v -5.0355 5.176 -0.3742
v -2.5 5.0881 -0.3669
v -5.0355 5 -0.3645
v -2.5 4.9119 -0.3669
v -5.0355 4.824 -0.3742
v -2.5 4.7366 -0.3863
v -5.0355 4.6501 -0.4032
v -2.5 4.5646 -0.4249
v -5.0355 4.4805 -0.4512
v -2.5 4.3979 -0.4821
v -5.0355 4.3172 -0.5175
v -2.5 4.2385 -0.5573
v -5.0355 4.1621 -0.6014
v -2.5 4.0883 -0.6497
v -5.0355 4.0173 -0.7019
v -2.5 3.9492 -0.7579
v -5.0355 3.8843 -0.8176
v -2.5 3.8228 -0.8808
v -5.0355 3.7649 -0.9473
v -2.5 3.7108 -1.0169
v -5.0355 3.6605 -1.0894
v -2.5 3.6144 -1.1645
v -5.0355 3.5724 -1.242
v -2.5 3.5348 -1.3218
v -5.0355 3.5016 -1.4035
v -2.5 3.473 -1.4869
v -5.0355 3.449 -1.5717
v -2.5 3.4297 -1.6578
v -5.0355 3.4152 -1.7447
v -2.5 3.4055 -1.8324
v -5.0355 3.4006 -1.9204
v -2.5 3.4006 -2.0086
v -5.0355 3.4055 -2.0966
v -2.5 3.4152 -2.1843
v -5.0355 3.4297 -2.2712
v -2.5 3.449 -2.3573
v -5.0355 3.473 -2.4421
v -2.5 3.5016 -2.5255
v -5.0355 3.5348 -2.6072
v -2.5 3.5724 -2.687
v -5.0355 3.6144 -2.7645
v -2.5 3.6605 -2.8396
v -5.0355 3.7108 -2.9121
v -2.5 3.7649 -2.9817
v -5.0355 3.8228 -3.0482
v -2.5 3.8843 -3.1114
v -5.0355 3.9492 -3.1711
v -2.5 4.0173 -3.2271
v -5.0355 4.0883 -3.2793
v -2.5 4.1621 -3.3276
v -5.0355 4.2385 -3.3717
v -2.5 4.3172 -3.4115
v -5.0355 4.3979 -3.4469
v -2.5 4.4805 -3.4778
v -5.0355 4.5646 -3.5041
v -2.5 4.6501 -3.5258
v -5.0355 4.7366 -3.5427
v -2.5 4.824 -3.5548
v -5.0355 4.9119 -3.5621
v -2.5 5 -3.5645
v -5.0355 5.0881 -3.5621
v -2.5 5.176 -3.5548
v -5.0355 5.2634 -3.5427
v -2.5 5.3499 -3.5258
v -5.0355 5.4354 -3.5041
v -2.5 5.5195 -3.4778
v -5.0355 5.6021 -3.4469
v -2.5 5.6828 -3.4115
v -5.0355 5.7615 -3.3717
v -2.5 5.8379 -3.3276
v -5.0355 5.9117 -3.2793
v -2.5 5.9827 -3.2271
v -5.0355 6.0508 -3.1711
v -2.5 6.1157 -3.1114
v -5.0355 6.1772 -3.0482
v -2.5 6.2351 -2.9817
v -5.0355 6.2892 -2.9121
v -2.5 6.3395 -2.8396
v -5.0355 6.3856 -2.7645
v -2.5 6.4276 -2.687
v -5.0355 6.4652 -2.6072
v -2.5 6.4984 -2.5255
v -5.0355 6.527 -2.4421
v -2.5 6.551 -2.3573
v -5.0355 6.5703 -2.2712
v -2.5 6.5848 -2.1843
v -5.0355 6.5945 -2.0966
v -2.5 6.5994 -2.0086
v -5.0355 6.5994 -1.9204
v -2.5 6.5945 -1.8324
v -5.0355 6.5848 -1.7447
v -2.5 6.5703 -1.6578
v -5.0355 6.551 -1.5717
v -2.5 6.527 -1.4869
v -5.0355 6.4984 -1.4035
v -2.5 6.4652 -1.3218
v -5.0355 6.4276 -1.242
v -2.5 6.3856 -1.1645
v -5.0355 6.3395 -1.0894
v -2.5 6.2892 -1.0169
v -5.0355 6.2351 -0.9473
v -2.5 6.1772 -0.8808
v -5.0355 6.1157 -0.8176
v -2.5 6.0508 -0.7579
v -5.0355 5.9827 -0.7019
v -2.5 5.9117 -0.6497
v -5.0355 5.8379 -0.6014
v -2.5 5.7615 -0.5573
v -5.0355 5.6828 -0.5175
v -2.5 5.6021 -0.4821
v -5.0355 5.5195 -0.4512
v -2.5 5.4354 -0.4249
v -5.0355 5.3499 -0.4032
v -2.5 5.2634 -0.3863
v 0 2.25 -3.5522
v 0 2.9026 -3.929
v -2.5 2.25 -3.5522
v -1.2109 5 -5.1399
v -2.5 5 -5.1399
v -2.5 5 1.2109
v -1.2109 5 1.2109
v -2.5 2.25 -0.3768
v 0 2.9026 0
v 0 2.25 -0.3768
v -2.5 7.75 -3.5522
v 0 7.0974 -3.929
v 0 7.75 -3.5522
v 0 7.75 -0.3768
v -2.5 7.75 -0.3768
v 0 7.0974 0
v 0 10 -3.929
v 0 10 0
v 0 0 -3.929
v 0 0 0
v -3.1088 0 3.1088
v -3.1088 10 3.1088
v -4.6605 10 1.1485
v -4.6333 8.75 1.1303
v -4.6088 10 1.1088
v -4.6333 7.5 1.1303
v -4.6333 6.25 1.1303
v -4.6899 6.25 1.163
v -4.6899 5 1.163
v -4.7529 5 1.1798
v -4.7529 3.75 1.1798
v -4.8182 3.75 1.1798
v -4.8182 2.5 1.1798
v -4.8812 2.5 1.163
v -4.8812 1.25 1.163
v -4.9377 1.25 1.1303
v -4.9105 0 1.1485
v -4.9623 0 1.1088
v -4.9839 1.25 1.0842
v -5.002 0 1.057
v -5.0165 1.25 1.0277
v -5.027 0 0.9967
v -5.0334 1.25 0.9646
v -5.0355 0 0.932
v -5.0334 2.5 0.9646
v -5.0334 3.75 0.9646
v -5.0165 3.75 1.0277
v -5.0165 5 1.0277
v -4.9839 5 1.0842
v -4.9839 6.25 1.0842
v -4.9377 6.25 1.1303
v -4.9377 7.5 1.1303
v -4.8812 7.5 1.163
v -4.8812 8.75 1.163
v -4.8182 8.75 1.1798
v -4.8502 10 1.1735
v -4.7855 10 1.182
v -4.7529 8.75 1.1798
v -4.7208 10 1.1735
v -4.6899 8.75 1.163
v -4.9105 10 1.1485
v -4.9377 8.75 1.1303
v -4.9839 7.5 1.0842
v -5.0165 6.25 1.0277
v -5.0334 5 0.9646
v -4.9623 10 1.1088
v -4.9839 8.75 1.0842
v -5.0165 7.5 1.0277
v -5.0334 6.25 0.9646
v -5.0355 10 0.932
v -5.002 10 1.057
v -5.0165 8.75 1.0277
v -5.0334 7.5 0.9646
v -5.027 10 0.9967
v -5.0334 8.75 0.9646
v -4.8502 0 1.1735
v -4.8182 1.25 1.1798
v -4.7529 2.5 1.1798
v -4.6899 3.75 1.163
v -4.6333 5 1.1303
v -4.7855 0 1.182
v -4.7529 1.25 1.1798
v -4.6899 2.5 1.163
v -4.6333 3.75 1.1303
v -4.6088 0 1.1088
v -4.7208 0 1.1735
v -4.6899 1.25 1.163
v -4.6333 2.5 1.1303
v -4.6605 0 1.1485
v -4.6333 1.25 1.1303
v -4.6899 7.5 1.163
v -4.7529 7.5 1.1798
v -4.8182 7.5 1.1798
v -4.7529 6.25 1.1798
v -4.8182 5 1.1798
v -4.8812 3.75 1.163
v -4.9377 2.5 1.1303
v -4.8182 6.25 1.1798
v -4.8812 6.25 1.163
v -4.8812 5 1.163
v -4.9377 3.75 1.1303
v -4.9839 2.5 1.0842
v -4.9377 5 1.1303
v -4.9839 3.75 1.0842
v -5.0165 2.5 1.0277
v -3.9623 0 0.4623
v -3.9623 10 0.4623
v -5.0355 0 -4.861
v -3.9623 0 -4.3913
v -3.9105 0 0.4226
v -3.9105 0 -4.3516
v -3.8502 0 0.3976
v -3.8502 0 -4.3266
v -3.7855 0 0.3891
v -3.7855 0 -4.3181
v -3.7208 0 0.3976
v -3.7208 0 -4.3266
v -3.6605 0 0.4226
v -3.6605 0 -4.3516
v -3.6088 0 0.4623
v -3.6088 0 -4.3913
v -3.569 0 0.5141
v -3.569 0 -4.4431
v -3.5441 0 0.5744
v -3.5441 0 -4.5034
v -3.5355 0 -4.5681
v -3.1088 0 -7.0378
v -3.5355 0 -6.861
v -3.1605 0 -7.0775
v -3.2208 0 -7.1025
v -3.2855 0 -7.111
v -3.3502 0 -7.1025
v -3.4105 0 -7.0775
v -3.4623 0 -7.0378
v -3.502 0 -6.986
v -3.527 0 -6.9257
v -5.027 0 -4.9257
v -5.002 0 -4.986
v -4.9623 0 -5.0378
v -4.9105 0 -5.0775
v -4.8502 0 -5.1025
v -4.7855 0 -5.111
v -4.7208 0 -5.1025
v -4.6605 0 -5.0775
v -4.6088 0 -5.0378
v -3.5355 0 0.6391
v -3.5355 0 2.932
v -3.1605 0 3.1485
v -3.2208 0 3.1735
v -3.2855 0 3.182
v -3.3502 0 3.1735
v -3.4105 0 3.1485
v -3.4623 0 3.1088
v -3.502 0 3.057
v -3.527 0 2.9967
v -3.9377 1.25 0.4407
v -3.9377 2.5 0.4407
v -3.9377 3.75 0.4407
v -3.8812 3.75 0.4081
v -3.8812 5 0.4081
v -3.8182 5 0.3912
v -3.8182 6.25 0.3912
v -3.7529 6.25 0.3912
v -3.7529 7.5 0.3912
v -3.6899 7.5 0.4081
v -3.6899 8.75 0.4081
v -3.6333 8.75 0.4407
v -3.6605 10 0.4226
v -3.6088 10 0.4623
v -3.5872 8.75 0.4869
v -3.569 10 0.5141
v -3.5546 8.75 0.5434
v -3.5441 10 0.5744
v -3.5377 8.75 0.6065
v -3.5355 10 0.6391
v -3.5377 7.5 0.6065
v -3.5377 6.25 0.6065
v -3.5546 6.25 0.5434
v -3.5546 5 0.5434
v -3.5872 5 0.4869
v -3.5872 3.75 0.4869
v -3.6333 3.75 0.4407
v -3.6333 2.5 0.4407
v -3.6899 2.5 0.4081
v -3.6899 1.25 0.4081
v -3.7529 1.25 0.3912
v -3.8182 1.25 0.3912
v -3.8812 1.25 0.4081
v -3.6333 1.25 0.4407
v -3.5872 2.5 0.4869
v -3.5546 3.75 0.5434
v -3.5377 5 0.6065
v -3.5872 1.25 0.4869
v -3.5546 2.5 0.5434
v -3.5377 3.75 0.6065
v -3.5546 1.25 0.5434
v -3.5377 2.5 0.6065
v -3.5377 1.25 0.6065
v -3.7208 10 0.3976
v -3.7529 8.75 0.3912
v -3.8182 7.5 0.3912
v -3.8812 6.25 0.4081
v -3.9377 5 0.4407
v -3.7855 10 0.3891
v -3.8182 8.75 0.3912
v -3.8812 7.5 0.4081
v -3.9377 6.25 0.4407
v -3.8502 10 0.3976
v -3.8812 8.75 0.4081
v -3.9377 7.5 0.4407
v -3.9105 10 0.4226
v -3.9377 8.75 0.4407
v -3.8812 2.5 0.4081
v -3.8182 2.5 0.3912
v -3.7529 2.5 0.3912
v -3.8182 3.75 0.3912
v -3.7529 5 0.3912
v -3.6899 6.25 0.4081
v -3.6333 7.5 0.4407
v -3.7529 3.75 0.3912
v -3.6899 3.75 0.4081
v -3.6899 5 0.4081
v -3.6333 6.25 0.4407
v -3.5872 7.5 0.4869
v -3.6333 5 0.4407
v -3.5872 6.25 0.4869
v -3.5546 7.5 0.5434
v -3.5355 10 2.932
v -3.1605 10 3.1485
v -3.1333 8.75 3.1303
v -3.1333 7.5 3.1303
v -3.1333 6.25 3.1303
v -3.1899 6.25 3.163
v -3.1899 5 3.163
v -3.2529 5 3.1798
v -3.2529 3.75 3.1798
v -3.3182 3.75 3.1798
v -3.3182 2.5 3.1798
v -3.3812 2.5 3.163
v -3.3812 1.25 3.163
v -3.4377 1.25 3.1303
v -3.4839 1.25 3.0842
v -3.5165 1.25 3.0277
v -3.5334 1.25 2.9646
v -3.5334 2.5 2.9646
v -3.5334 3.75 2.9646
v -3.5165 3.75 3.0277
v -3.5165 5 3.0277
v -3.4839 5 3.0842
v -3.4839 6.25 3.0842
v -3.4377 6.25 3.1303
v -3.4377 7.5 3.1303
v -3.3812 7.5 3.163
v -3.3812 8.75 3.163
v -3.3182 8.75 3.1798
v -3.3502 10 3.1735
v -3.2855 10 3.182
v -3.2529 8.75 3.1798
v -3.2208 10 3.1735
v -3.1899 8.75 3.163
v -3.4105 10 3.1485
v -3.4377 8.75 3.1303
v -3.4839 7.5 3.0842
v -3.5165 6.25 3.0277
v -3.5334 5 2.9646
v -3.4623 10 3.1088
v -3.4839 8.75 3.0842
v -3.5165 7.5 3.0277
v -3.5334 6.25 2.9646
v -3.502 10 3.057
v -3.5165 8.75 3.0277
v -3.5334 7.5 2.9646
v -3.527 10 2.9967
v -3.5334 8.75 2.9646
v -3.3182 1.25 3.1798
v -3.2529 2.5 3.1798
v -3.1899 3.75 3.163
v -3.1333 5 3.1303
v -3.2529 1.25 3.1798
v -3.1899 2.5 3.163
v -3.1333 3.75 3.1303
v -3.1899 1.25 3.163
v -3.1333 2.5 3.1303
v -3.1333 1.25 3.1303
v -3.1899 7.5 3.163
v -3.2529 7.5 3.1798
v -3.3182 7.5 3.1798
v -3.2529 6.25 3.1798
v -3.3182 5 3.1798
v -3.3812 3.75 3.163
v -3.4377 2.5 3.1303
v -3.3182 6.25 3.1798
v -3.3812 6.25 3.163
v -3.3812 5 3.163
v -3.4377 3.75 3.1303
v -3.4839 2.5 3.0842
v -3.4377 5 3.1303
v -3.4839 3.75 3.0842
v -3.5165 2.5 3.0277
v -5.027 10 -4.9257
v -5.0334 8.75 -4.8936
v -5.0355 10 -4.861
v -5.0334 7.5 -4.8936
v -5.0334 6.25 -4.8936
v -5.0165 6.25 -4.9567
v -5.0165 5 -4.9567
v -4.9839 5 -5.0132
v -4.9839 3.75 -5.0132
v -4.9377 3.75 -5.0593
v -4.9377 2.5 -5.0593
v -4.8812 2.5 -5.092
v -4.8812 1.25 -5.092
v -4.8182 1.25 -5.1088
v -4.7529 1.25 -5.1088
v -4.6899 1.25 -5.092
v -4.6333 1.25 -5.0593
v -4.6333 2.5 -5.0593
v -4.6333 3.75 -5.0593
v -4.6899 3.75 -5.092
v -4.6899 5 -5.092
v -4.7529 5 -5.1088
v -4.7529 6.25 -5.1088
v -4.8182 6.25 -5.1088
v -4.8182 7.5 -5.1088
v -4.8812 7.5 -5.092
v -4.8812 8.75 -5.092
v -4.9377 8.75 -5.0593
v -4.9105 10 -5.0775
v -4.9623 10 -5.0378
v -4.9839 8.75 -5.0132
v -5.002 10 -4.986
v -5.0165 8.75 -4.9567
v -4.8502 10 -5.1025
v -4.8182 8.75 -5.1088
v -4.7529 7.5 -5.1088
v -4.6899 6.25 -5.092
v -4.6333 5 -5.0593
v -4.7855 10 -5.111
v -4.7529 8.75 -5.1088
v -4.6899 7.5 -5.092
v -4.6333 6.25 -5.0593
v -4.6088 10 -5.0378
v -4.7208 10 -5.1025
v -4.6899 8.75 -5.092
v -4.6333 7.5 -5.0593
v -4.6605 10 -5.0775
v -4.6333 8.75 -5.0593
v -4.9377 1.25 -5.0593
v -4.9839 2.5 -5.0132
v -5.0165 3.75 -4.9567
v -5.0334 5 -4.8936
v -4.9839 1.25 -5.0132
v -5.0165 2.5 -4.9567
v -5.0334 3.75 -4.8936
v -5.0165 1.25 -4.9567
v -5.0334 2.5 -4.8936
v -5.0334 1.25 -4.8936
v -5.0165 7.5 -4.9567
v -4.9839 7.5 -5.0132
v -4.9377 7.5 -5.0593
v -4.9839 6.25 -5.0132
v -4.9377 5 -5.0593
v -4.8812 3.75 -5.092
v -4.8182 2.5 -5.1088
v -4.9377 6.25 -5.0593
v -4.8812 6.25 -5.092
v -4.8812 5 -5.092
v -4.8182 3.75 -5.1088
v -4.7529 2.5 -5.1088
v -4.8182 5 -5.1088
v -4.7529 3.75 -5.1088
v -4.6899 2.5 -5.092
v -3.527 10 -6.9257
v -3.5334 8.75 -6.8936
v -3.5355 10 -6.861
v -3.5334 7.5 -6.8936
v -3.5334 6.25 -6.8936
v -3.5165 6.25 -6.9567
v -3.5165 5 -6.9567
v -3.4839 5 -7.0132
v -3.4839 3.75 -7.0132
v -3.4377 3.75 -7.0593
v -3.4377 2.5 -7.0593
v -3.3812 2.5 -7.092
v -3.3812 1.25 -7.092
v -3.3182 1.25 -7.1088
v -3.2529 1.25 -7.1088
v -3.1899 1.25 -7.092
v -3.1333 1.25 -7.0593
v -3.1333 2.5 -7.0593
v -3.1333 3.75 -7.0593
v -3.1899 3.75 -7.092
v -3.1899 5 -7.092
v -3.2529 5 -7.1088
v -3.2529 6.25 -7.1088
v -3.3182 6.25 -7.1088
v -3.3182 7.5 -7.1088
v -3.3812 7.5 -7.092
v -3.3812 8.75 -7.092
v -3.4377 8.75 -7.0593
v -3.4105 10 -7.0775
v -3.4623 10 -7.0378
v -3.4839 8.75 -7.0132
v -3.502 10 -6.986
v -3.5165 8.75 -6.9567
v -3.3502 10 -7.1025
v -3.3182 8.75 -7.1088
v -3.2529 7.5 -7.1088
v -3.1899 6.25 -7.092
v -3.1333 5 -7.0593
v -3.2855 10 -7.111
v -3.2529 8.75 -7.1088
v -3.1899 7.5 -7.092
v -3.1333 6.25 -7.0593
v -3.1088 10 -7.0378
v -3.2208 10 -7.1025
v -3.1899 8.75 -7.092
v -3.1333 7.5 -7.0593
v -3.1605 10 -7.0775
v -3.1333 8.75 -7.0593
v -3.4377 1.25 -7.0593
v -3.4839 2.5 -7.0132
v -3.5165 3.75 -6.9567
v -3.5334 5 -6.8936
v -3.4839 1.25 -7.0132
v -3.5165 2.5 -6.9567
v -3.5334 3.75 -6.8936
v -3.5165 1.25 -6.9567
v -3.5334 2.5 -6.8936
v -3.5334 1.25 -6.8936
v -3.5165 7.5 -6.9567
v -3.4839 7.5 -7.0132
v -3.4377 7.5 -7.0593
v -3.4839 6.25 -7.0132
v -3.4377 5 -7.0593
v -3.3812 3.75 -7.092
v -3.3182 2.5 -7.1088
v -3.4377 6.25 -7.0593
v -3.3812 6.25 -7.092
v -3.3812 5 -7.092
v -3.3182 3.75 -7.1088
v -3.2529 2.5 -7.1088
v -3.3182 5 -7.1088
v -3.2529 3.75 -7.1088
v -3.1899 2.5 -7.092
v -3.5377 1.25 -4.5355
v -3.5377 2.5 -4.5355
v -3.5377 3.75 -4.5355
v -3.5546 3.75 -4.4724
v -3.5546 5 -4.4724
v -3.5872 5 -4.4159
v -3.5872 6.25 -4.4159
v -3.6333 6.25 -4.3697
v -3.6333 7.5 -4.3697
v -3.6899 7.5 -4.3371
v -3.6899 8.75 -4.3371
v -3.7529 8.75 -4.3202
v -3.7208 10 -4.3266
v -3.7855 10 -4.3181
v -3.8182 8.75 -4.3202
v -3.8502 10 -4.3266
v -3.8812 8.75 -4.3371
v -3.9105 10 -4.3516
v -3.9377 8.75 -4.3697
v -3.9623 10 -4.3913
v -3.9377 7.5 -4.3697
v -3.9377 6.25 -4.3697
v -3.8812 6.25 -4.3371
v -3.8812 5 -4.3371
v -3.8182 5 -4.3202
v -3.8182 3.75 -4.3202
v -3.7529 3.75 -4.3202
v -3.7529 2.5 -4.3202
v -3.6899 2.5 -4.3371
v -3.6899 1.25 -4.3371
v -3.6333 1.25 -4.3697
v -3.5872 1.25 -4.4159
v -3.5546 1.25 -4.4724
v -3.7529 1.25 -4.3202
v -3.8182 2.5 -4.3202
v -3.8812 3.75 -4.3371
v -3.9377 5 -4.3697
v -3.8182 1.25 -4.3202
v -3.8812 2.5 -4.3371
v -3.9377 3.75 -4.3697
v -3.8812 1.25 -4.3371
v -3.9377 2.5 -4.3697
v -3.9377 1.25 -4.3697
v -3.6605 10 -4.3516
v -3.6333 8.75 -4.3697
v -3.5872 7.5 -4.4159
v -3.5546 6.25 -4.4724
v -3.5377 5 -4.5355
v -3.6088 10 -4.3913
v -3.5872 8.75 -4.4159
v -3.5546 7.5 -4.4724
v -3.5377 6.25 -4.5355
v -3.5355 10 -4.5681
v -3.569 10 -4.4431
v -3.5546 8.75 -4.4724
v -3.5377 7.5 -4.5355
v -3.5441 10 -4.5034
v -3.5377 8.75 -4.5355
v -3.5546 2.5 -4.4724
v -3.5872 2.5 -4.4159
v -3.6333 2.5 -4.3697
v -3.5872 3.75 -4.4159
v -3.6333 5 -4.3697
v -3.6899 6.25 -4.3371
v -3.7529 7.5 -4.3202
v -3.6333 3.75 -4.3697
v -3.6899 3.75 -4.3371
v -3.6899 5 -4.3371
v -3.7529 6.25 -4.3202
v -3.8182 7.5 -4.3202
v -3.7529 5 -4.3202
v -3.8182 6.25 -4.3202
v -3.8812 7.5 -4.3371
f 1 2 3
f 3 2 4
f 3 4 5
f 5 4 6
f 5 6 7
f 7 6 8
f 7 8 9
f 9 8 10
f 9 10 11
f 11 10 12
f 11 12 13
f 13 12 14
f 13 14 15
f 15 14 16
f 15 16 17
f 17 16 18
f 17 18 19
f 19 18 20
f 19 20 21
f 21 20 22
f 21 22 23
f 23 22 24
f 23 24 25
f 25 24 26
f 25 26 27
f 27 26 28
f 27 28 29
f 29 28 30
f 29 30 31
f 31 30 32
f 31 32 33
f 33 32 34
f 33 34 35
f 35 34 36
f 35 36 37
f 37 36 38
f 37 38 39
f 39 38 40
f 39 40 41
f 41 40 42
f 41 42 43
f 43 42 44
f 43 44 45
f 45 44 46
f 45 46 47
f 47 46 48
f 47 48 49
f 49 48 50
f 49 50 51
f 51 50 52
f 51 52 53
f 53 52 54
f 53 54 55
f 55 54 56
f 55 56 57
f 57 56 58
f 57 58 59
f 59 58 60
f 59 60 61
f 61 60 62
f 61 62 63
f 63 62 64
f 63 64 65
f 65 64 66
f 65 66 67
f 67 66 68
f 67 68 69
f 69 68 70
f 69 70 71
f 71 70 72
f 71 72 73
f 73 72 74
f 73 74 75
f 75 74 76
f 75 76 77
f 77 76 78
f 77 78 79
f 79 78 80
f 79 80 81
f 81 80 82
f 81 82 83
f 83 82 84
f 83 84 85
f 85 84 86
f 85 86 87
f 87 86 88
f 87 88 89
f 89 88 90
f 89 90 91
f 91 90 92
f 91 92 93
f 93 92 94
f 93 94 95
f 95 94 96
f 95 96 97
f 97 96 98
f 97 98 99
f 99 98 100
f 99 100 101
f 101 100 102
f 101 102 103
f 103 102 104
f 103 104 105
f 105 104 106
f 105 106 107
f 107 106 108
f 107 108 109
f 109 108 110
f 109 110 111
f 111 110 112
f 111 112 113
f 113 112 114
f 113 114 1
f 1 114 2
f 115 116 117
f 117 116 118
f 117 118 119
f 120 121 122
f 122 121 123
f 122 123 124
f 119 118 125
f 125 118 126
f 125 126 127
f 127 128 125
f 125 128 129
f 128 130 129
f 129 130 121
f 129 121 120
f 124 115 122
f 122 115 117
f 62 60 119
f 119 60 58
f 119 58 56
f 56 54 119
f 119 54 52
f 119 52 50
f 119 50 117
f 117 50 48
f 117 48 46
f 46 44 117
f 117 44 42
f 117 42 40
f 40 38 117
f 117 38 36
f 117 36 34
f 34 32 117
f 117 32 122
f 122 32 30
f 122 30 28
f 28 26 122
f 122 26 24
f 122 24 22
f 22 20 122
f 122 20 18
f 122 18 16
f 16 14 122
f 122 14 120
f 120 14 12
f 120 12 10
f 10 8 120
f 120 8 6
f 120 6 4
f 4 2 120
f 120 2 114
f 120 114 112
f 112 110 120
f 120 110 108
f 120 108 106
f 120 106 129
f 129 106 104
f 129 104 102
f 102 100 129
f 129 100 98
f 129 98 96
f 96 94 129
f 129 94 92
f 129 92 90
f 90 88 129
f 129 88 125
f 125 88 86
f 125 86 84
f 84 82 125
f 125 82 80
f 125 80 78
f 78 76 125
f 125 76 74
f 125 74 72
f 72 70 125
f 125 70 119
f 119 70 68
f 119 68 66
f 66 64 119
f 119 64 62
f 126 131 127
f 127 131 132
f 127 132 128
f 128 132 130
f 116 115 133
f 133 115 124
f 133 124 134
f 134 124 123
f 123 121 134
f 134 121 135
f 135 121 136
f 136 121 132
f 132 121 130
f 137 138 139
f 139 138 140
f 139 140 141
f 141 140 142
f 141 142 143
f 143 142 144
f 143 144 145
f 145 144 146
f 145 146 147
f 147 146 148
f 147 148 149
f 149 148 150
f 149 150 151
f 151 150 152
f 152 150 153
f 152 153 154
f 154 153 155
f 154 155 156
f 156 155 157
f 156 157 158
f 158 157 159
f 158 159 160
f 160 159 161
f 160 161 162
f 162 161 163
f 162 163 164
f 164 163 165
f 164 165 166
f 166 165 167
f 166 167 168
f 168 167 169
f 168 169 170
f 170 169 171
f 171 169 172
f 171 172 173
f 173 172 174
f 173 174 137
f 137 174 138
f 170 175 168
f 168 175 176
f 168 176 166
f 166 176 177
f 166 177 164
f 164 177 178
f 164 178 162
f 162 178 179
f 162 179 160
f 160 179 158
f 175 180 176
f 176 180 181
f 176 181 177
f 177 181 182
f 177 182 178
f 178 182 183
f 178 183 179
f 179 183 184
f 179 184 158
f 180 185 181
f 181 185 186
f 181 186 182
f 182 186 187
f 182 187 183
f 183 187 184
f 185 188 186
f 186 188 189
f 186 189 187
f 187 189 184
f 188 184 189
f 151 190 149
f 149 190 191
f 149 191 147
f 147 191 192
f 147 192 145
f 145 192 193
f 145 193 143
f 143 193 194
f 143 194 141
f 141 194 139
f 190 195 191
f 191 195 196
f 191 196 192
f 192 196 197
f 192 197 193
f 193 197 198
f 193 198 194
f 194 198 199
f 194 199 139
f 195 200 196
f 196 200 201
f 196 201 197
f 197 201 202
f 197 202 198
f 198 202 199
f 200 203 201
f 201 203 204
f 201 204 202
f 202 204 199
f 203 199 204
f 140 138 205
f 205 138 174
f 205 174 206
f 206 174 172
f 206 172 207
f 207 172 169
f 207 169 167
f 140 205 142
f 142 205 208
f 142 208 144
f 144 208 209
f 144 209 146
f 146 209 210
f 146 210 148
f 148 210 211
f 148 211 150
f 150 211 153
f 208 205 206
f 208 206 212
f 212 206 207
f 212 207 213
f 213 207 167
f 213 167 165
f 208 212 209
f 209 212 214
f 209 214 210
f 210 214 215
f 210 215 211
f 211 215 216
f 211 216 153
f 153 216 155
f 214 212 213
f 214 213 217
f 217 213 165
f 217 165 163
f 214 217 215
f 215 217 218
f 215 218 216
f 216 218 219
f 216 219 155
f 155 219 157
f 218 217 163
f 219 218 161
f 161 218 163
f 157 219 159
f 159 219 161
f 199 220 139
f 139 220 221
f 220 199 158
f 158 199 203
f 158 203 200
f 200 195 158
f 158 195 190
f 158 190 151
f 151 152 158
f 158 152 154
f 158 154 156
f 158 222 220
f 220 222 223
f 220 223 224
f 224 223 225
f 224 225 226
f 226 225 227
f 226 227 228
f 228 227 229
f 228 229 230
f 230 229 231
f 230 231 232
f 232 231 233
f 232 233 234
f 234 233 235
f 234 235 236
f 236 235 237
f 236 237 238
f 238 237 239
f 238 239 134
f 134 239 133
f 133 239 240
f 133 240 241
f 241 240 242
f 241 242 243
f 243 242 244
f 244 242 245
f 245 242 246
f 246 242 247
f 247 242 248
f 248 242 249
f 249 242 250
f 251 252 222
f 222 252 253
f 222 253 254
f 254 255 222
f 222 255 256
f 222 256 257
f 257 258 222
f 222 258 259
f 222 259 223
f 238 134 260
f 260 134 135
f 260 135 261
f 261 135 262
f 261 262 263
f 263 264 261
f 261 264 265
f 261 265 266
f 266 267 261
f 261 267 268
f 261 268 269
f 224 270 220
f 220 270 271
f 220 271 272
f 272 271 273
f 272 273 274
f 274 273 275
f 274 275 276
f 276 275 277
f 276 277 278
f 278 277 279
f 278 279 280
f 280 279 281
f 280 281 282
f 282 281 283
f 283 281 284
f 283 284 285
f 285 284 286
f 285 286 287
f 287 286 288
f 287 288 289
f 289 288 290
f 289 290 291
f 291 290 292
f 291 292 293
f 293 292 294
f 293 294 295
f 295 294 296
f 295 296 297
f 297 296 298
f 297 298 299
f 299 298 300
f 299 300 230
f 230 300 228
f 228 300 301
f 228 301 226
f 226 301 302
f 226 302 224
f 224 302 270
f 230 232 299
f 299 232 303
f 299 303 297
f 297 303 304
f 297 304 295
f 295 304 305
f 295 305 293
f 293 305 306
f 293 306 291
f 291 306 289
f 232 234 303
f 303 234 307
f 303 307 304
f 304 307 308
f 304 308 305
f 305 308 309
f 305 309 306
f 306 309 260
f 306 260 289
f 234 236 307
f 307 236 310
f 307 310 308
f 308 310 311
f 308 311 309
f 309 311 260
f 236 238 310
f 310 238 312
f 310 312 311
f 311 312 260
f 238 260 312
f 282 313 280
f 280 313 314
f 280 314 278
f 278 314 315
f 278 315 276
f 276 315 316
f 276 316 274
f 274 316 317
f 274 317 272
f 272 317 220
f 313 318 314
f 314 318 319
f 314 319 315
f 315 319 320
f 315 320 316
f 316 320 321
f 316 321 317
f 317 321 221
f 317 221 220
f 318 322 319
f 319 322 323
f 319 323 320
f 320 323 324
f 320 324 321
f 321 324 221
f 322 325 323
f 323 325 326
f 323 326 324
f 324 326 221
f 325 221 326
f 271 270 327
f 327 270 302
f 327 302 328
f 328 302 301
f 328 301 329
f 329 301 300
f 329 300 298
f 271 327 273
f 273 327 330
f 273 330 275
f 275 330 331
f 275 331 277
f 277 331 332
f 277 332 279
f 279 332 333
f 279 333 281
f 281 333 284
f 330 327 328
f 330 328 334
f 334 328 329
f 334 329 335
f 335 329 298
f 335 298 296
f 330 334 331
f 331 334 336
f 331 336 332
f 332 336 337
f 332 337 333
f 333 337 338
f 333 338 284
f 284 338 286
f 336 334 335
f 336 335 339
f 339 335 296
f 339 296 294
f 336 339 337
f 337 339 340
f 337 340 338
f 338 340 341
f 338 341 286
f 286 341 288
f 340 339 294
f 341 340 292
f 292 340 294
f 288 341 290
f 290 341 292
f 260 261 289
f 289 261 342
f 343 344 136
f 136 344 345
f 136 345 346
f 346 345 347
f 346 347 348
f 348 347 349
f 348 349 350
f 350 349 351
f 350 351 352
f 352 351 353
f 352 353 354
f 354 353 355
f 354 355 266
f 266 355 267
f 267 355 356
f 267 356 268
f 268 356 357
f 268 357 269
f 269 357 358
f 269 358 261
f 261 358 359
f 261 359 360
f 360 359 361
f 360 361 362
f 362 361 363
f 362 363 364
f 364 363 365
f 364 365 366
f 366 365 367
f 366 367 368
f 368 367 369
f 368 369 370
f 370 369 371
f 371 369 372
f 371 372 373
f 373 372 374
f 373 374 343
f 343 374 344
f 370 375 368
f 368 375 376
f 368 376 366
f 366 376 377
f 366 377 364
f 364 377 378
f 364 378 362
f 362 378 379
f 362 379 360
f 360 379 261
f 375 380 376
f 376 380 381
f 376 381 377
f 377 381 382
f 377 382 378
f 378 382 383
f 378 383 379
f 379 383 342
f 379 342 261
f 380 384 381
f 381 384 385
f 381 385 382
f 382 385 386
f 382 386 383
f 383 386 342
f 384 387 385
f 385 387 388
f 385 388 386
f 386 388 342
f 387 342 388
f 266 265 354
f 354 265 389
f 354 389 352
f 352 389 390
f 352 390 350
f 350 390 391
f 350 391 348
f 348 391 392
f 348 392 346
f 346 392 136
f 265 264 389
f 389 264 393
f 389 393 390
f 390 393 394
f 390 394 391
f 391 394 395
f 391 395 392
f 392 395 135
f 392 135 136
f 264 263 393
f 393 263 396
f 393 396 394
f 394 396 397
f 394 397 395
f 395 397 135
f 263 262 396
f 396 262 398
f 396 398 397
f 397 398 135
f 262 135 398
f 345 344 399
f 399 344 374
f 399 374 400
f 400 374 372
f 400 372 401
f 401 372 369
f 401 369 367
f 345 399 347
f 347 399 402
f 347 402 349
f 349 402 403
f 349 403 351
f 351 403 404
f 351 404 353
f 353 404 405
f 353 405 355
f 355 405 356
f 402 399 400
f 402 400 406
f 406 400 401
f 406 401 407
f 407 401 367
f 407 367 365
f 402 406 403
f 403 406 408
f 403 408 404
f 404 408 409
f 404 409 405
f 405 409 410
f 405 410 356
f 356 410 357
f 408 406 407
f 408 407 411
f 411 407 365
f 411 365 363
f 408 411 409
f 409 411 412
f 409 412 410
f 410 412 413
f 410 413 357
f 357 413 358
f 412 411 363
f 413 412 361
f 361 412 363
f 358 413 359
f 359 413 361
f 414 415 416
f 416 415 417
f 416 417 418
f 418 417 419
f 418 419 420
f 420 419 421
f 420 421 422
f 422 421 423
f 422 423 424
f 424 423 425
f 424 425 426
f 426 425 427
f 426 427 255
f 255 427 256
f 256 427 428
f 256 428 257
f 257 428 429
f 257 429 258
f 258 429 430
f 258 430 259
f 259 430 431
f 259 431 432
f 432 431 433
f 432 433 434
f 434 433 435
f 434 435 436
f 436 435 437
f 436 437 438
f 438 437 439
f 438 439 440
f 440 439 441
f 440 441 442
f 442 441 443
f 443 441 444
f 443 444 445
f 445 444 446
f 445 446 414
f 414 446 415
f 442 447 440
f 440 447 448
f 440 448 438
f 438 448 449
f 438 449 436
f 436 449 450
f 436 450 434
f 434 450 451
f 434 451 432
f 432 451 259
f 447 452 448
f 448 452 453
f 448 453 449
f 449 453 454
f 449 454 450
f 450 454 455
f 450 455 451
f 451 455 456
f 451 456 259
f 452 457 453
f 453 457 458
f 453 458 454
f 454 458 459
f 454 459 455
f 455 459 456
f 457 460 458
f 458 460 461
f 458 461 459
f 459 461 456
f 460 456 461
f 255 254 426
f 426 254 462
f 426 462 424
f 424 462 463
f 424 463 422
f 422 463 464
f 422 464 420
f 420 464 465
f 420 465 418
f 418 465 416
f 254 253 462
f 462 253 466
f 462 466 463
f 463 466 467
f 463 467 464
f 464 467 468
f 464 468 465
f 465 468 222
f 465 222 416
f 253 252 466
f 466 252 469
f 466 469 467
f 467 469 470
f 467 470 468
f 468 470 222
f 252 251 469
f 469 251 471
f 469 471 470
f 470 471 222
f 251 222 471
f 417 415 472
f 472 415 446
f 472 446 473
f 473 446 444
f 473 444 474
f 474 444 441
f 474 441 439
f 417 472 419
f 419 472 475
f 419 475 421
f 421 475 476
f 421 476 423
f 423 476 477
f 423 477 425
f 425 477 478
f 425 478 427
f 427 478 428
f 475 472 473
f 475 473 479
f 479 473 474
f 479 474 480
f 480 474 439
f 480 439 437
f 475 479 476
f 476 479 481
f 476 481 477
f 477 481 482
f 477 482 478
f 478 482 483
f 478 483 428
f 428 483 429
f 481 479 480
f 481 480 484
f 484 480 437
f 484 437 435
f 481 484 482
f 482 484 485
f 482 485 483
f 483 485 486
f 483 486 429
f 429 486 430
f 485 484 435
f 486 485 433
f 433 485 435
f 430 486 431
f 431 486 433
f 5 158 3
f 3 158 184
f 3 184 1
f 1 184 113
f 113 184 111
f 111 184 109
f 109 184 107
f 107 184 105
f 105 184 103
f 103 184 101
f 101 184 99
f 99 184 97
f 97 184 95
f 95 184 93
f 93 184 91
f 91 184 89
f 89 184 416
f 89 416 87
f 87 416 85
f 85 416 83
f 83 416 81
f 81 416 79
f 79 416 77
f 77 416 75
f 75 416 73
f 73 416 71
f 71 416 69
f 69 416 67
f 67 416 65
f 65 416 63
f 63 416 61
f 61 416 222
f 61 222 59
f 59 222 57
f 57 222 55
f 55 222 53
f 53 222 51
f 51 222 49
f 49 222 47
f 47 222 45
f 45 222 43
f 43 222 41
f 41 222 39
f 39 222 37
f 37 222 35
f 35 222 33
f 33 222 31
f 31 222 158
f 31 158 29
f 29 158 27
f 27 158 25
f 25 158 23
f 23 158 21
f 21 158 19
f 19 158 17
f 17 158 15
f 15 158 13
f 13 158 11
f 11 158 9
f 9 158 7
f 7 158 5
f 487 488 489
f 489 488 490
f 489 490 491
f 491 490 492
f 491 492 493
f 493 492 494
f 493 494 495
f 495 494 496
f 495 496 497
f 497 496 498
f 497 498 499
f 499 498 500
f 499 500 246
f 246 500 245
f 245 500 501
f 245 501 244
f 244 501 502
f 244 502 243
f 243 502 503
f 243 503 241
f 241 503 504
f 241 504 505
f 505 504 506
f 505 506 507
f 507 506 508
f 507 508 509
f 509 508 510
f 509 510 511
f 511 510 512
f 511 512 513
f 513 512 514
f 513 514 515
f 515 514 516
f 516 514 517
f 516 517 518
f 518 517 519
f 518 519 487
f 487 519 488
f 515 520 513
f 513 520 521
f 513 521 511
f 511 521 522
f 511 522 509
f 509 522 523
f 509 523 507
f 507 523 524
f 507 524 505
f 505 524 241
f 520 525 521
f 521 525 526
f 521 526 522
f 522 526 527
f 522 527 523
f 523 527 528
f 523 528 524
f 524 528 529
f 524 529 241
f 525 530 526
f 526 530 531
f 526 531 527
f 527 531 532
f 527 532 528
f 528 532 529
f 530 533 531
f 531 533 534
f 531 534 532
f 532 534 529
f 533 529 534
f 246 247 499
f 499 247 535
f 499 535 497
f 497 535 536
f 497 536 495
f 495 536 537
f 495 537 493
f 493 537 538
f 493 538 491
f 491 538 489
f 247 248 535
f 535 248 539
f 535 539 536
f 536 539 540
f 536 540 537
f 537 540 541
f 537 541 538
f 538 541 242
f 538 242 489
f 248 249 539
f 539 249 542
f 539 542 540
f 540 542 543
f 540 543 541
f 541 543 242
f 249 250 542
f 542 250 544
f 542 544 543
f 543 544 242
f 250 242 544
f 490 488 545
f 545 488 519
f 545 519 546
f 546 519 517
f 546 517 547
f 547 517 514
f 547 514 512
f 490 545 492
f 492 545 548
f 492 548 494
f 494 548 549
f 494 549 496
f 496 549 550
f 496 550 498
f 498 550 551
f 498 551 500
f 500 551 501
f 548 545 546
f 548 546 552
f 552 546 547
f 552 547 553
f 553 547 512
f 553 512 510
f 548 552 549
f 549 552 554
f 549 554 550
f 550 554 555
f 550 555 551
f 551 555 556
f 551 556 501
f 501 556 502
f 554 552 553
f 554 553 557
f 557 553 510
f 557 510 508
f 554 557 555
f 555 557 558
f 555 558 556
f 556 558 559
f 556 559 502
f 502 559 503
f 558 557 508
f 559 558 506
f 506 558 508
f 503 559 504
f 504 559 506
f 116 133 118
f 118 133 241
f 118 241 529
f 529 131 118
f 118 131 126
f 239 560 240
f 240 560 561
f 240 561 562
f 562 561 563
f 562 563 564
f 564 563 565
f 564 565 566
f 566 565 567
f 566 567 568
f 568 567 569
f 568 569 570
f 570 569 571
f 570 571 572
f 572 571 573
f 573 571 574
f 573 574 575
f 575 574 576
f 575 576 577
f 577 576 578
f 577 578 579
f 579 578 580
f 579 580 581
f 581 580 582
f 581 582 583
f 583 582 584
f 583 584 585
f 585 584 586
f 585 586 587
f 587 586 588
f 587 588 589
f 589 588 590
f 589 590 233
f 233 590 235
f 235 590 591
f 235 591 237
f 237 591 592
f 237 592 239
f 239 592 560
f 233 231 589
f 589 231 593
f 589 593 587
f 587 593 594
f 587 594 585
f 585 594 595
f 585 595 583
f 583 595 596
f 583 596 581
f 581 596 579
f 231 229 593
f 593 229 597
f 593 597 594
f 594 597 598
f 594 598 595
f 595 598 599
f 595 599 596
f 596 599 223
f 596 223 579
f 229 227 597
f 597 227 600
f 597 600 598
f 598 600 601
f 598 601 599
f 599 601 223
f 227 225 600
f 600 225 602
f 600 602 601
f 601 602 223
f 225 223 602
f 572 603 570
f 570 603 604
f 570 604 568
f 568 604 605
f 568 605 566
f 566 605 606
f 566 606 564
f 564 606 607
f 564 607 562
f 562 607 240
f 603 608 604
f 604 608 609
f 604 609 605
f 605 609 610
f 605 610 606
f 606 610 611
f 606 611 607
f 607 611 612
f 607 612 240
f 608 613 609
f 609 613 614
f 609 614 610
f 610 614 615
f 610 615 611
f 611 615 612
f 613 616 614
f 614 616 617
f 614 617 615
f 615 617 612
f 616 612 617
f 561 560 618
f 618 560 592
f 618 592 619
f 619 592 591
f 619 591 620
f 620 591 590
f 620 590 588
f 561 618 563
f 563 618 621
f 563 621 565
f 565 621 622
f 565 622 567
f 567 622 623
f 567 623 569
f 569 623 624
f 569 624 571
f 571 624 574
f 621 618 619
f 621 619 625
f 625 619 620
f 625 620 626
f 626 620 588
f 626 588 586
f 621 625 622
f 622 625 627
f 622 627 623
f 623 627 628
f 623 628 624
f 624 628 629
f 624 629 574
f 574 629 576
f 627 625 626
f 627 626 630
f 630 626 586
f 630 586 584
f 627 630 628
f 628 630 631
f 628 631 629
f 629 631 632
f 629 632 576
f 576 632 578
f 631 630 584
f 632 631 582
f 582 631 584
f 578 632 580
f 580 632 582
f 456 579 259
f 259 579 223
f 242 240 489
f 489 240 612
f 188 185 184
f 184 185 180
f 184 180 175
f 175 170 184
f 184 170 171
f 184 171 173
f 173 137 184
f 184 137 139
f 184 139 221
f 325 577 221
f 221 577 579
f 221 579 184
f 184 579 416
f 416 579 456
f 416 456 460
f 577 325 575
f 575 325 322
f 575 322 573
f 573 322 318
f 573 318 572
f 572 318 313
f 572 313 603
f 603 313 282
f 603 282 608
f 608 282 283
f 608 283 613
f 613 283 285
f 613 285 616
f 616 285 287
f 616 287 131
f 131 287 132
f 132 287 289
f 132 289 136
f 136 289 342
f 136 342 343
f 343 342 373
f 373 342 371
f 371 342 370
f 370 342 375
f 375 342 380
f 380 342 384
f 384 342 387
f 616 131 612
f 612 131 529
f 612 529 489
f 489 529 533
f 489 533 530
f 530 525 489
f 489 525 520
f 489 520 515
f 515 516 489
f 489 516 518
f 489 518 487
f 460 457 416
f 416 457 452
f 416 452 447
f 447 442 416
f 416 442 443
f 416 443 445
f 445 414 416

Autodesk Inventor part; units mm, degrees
ref_plane "YZ Plane" through (0, 0, 0) normal (1, 0, 0) x (0, 1, 0)
ref_plane "XZ Plane" through (0, 0, 0) normal (0, 1, 0) x (-1, 0, 0)
ref_plane "XY Plane" through (0, 0, 0) normal (0, 0, 1) x (1, 0, 0)
sketch "Sketch1" plane through (0, 0, 0) normal (0, 1, 0) x (-1, 0, 0)
  line L0 (0, 0) -> (3.5355, 3.5355)
  line L1 (3.5355, 3.5355) -> (3.5355, 0.0355)
  line L2 (3.5355, 0.0355) -> (5.0355, 1.5355)
  line L3 (5.0355, 1.5355) -> (5.0355, -5.4645)
  line L4 (5.0355, -5.4645) -> (3.5355, -3.9645)
  line L5 (3.5355, -3.9645) -> (3.5355, -7.4645)
  line L6 (3.5355, -7.4645) -> (0, -3.929)
  line L7 (0, -3.929) -> (0, 0)
  dimension "d0" = 3.929
  dimension "d1" = 5
  dimension "d2" = 5
  dimension "d3" = 3.5
  dimension "d4" = 3.5
  dimension "d5" = 135
  dimension "d6" = 45
  dimension "d7" = 1.5
extrude "Extrusion1" add sketch "Sketch1" along normal blind 10
fillet "Fillet1" radius 0.25 6 edges at (-3.5355, 5, -3.9645) (-3.5355, 5, -7.4645) (-5.0355, 5, -5.4645) (-3.5355, 5, 3.5355) (-3.5355, 5, 0.0355) (-5.0355, 5, 1.5355)
sketch "Sketch2" plane through (0, 0, 0) normal (1, 0, 0) x (0, 0, -1)
  line L0 (0.3768, 7.75) -> (3.5522, 7.75)
  line L1 (3.5522, 7.75) -> (5.1399, 5)
  line L2 (5.1399, 5) -> (3.5522, 2.25)
  line L3 (3.5522, 2.25) -> (0.3768, 2.25)
  line L4 (0.3768, 2.25) -> (-1.2109, 5)
  line L5 (-1.2109, 5) -> (0.3768, 7.75)
  line L6 (3.929, 0) -> (3.929, 10) projected
  line L7 (0, 10) -> (3.929, 10) projected
  point P0 (0, 0)
  point P1 (1.9645, 5)
  dimension "d11" = 5.5
  dimension "d12" = 1.9645
  dimension "d13" = 5
extrude "Extrusion2" cut sketch "Sketch2" against normal blind 2.5
sketch "Sketch3" plane through (-2.5, 0, 0) normal (1, 0, 0) x (0, 0, -1)
  circle A0 centre (1.9645, 5) radius 1.6
  line L0 (3.929, 0) -> (3.929, 2.9026) projected
  line L1 (0, 10) -> (3.929, 10) projected
  point P0 (0, 0)
  dimension "d16" = 3.2
  dimension "d17" = 1.9645
  dimension "d18" = 5
extrude "Extrusion3" cut sketch "Sketch3" against normal through all
properties part number "nut"
